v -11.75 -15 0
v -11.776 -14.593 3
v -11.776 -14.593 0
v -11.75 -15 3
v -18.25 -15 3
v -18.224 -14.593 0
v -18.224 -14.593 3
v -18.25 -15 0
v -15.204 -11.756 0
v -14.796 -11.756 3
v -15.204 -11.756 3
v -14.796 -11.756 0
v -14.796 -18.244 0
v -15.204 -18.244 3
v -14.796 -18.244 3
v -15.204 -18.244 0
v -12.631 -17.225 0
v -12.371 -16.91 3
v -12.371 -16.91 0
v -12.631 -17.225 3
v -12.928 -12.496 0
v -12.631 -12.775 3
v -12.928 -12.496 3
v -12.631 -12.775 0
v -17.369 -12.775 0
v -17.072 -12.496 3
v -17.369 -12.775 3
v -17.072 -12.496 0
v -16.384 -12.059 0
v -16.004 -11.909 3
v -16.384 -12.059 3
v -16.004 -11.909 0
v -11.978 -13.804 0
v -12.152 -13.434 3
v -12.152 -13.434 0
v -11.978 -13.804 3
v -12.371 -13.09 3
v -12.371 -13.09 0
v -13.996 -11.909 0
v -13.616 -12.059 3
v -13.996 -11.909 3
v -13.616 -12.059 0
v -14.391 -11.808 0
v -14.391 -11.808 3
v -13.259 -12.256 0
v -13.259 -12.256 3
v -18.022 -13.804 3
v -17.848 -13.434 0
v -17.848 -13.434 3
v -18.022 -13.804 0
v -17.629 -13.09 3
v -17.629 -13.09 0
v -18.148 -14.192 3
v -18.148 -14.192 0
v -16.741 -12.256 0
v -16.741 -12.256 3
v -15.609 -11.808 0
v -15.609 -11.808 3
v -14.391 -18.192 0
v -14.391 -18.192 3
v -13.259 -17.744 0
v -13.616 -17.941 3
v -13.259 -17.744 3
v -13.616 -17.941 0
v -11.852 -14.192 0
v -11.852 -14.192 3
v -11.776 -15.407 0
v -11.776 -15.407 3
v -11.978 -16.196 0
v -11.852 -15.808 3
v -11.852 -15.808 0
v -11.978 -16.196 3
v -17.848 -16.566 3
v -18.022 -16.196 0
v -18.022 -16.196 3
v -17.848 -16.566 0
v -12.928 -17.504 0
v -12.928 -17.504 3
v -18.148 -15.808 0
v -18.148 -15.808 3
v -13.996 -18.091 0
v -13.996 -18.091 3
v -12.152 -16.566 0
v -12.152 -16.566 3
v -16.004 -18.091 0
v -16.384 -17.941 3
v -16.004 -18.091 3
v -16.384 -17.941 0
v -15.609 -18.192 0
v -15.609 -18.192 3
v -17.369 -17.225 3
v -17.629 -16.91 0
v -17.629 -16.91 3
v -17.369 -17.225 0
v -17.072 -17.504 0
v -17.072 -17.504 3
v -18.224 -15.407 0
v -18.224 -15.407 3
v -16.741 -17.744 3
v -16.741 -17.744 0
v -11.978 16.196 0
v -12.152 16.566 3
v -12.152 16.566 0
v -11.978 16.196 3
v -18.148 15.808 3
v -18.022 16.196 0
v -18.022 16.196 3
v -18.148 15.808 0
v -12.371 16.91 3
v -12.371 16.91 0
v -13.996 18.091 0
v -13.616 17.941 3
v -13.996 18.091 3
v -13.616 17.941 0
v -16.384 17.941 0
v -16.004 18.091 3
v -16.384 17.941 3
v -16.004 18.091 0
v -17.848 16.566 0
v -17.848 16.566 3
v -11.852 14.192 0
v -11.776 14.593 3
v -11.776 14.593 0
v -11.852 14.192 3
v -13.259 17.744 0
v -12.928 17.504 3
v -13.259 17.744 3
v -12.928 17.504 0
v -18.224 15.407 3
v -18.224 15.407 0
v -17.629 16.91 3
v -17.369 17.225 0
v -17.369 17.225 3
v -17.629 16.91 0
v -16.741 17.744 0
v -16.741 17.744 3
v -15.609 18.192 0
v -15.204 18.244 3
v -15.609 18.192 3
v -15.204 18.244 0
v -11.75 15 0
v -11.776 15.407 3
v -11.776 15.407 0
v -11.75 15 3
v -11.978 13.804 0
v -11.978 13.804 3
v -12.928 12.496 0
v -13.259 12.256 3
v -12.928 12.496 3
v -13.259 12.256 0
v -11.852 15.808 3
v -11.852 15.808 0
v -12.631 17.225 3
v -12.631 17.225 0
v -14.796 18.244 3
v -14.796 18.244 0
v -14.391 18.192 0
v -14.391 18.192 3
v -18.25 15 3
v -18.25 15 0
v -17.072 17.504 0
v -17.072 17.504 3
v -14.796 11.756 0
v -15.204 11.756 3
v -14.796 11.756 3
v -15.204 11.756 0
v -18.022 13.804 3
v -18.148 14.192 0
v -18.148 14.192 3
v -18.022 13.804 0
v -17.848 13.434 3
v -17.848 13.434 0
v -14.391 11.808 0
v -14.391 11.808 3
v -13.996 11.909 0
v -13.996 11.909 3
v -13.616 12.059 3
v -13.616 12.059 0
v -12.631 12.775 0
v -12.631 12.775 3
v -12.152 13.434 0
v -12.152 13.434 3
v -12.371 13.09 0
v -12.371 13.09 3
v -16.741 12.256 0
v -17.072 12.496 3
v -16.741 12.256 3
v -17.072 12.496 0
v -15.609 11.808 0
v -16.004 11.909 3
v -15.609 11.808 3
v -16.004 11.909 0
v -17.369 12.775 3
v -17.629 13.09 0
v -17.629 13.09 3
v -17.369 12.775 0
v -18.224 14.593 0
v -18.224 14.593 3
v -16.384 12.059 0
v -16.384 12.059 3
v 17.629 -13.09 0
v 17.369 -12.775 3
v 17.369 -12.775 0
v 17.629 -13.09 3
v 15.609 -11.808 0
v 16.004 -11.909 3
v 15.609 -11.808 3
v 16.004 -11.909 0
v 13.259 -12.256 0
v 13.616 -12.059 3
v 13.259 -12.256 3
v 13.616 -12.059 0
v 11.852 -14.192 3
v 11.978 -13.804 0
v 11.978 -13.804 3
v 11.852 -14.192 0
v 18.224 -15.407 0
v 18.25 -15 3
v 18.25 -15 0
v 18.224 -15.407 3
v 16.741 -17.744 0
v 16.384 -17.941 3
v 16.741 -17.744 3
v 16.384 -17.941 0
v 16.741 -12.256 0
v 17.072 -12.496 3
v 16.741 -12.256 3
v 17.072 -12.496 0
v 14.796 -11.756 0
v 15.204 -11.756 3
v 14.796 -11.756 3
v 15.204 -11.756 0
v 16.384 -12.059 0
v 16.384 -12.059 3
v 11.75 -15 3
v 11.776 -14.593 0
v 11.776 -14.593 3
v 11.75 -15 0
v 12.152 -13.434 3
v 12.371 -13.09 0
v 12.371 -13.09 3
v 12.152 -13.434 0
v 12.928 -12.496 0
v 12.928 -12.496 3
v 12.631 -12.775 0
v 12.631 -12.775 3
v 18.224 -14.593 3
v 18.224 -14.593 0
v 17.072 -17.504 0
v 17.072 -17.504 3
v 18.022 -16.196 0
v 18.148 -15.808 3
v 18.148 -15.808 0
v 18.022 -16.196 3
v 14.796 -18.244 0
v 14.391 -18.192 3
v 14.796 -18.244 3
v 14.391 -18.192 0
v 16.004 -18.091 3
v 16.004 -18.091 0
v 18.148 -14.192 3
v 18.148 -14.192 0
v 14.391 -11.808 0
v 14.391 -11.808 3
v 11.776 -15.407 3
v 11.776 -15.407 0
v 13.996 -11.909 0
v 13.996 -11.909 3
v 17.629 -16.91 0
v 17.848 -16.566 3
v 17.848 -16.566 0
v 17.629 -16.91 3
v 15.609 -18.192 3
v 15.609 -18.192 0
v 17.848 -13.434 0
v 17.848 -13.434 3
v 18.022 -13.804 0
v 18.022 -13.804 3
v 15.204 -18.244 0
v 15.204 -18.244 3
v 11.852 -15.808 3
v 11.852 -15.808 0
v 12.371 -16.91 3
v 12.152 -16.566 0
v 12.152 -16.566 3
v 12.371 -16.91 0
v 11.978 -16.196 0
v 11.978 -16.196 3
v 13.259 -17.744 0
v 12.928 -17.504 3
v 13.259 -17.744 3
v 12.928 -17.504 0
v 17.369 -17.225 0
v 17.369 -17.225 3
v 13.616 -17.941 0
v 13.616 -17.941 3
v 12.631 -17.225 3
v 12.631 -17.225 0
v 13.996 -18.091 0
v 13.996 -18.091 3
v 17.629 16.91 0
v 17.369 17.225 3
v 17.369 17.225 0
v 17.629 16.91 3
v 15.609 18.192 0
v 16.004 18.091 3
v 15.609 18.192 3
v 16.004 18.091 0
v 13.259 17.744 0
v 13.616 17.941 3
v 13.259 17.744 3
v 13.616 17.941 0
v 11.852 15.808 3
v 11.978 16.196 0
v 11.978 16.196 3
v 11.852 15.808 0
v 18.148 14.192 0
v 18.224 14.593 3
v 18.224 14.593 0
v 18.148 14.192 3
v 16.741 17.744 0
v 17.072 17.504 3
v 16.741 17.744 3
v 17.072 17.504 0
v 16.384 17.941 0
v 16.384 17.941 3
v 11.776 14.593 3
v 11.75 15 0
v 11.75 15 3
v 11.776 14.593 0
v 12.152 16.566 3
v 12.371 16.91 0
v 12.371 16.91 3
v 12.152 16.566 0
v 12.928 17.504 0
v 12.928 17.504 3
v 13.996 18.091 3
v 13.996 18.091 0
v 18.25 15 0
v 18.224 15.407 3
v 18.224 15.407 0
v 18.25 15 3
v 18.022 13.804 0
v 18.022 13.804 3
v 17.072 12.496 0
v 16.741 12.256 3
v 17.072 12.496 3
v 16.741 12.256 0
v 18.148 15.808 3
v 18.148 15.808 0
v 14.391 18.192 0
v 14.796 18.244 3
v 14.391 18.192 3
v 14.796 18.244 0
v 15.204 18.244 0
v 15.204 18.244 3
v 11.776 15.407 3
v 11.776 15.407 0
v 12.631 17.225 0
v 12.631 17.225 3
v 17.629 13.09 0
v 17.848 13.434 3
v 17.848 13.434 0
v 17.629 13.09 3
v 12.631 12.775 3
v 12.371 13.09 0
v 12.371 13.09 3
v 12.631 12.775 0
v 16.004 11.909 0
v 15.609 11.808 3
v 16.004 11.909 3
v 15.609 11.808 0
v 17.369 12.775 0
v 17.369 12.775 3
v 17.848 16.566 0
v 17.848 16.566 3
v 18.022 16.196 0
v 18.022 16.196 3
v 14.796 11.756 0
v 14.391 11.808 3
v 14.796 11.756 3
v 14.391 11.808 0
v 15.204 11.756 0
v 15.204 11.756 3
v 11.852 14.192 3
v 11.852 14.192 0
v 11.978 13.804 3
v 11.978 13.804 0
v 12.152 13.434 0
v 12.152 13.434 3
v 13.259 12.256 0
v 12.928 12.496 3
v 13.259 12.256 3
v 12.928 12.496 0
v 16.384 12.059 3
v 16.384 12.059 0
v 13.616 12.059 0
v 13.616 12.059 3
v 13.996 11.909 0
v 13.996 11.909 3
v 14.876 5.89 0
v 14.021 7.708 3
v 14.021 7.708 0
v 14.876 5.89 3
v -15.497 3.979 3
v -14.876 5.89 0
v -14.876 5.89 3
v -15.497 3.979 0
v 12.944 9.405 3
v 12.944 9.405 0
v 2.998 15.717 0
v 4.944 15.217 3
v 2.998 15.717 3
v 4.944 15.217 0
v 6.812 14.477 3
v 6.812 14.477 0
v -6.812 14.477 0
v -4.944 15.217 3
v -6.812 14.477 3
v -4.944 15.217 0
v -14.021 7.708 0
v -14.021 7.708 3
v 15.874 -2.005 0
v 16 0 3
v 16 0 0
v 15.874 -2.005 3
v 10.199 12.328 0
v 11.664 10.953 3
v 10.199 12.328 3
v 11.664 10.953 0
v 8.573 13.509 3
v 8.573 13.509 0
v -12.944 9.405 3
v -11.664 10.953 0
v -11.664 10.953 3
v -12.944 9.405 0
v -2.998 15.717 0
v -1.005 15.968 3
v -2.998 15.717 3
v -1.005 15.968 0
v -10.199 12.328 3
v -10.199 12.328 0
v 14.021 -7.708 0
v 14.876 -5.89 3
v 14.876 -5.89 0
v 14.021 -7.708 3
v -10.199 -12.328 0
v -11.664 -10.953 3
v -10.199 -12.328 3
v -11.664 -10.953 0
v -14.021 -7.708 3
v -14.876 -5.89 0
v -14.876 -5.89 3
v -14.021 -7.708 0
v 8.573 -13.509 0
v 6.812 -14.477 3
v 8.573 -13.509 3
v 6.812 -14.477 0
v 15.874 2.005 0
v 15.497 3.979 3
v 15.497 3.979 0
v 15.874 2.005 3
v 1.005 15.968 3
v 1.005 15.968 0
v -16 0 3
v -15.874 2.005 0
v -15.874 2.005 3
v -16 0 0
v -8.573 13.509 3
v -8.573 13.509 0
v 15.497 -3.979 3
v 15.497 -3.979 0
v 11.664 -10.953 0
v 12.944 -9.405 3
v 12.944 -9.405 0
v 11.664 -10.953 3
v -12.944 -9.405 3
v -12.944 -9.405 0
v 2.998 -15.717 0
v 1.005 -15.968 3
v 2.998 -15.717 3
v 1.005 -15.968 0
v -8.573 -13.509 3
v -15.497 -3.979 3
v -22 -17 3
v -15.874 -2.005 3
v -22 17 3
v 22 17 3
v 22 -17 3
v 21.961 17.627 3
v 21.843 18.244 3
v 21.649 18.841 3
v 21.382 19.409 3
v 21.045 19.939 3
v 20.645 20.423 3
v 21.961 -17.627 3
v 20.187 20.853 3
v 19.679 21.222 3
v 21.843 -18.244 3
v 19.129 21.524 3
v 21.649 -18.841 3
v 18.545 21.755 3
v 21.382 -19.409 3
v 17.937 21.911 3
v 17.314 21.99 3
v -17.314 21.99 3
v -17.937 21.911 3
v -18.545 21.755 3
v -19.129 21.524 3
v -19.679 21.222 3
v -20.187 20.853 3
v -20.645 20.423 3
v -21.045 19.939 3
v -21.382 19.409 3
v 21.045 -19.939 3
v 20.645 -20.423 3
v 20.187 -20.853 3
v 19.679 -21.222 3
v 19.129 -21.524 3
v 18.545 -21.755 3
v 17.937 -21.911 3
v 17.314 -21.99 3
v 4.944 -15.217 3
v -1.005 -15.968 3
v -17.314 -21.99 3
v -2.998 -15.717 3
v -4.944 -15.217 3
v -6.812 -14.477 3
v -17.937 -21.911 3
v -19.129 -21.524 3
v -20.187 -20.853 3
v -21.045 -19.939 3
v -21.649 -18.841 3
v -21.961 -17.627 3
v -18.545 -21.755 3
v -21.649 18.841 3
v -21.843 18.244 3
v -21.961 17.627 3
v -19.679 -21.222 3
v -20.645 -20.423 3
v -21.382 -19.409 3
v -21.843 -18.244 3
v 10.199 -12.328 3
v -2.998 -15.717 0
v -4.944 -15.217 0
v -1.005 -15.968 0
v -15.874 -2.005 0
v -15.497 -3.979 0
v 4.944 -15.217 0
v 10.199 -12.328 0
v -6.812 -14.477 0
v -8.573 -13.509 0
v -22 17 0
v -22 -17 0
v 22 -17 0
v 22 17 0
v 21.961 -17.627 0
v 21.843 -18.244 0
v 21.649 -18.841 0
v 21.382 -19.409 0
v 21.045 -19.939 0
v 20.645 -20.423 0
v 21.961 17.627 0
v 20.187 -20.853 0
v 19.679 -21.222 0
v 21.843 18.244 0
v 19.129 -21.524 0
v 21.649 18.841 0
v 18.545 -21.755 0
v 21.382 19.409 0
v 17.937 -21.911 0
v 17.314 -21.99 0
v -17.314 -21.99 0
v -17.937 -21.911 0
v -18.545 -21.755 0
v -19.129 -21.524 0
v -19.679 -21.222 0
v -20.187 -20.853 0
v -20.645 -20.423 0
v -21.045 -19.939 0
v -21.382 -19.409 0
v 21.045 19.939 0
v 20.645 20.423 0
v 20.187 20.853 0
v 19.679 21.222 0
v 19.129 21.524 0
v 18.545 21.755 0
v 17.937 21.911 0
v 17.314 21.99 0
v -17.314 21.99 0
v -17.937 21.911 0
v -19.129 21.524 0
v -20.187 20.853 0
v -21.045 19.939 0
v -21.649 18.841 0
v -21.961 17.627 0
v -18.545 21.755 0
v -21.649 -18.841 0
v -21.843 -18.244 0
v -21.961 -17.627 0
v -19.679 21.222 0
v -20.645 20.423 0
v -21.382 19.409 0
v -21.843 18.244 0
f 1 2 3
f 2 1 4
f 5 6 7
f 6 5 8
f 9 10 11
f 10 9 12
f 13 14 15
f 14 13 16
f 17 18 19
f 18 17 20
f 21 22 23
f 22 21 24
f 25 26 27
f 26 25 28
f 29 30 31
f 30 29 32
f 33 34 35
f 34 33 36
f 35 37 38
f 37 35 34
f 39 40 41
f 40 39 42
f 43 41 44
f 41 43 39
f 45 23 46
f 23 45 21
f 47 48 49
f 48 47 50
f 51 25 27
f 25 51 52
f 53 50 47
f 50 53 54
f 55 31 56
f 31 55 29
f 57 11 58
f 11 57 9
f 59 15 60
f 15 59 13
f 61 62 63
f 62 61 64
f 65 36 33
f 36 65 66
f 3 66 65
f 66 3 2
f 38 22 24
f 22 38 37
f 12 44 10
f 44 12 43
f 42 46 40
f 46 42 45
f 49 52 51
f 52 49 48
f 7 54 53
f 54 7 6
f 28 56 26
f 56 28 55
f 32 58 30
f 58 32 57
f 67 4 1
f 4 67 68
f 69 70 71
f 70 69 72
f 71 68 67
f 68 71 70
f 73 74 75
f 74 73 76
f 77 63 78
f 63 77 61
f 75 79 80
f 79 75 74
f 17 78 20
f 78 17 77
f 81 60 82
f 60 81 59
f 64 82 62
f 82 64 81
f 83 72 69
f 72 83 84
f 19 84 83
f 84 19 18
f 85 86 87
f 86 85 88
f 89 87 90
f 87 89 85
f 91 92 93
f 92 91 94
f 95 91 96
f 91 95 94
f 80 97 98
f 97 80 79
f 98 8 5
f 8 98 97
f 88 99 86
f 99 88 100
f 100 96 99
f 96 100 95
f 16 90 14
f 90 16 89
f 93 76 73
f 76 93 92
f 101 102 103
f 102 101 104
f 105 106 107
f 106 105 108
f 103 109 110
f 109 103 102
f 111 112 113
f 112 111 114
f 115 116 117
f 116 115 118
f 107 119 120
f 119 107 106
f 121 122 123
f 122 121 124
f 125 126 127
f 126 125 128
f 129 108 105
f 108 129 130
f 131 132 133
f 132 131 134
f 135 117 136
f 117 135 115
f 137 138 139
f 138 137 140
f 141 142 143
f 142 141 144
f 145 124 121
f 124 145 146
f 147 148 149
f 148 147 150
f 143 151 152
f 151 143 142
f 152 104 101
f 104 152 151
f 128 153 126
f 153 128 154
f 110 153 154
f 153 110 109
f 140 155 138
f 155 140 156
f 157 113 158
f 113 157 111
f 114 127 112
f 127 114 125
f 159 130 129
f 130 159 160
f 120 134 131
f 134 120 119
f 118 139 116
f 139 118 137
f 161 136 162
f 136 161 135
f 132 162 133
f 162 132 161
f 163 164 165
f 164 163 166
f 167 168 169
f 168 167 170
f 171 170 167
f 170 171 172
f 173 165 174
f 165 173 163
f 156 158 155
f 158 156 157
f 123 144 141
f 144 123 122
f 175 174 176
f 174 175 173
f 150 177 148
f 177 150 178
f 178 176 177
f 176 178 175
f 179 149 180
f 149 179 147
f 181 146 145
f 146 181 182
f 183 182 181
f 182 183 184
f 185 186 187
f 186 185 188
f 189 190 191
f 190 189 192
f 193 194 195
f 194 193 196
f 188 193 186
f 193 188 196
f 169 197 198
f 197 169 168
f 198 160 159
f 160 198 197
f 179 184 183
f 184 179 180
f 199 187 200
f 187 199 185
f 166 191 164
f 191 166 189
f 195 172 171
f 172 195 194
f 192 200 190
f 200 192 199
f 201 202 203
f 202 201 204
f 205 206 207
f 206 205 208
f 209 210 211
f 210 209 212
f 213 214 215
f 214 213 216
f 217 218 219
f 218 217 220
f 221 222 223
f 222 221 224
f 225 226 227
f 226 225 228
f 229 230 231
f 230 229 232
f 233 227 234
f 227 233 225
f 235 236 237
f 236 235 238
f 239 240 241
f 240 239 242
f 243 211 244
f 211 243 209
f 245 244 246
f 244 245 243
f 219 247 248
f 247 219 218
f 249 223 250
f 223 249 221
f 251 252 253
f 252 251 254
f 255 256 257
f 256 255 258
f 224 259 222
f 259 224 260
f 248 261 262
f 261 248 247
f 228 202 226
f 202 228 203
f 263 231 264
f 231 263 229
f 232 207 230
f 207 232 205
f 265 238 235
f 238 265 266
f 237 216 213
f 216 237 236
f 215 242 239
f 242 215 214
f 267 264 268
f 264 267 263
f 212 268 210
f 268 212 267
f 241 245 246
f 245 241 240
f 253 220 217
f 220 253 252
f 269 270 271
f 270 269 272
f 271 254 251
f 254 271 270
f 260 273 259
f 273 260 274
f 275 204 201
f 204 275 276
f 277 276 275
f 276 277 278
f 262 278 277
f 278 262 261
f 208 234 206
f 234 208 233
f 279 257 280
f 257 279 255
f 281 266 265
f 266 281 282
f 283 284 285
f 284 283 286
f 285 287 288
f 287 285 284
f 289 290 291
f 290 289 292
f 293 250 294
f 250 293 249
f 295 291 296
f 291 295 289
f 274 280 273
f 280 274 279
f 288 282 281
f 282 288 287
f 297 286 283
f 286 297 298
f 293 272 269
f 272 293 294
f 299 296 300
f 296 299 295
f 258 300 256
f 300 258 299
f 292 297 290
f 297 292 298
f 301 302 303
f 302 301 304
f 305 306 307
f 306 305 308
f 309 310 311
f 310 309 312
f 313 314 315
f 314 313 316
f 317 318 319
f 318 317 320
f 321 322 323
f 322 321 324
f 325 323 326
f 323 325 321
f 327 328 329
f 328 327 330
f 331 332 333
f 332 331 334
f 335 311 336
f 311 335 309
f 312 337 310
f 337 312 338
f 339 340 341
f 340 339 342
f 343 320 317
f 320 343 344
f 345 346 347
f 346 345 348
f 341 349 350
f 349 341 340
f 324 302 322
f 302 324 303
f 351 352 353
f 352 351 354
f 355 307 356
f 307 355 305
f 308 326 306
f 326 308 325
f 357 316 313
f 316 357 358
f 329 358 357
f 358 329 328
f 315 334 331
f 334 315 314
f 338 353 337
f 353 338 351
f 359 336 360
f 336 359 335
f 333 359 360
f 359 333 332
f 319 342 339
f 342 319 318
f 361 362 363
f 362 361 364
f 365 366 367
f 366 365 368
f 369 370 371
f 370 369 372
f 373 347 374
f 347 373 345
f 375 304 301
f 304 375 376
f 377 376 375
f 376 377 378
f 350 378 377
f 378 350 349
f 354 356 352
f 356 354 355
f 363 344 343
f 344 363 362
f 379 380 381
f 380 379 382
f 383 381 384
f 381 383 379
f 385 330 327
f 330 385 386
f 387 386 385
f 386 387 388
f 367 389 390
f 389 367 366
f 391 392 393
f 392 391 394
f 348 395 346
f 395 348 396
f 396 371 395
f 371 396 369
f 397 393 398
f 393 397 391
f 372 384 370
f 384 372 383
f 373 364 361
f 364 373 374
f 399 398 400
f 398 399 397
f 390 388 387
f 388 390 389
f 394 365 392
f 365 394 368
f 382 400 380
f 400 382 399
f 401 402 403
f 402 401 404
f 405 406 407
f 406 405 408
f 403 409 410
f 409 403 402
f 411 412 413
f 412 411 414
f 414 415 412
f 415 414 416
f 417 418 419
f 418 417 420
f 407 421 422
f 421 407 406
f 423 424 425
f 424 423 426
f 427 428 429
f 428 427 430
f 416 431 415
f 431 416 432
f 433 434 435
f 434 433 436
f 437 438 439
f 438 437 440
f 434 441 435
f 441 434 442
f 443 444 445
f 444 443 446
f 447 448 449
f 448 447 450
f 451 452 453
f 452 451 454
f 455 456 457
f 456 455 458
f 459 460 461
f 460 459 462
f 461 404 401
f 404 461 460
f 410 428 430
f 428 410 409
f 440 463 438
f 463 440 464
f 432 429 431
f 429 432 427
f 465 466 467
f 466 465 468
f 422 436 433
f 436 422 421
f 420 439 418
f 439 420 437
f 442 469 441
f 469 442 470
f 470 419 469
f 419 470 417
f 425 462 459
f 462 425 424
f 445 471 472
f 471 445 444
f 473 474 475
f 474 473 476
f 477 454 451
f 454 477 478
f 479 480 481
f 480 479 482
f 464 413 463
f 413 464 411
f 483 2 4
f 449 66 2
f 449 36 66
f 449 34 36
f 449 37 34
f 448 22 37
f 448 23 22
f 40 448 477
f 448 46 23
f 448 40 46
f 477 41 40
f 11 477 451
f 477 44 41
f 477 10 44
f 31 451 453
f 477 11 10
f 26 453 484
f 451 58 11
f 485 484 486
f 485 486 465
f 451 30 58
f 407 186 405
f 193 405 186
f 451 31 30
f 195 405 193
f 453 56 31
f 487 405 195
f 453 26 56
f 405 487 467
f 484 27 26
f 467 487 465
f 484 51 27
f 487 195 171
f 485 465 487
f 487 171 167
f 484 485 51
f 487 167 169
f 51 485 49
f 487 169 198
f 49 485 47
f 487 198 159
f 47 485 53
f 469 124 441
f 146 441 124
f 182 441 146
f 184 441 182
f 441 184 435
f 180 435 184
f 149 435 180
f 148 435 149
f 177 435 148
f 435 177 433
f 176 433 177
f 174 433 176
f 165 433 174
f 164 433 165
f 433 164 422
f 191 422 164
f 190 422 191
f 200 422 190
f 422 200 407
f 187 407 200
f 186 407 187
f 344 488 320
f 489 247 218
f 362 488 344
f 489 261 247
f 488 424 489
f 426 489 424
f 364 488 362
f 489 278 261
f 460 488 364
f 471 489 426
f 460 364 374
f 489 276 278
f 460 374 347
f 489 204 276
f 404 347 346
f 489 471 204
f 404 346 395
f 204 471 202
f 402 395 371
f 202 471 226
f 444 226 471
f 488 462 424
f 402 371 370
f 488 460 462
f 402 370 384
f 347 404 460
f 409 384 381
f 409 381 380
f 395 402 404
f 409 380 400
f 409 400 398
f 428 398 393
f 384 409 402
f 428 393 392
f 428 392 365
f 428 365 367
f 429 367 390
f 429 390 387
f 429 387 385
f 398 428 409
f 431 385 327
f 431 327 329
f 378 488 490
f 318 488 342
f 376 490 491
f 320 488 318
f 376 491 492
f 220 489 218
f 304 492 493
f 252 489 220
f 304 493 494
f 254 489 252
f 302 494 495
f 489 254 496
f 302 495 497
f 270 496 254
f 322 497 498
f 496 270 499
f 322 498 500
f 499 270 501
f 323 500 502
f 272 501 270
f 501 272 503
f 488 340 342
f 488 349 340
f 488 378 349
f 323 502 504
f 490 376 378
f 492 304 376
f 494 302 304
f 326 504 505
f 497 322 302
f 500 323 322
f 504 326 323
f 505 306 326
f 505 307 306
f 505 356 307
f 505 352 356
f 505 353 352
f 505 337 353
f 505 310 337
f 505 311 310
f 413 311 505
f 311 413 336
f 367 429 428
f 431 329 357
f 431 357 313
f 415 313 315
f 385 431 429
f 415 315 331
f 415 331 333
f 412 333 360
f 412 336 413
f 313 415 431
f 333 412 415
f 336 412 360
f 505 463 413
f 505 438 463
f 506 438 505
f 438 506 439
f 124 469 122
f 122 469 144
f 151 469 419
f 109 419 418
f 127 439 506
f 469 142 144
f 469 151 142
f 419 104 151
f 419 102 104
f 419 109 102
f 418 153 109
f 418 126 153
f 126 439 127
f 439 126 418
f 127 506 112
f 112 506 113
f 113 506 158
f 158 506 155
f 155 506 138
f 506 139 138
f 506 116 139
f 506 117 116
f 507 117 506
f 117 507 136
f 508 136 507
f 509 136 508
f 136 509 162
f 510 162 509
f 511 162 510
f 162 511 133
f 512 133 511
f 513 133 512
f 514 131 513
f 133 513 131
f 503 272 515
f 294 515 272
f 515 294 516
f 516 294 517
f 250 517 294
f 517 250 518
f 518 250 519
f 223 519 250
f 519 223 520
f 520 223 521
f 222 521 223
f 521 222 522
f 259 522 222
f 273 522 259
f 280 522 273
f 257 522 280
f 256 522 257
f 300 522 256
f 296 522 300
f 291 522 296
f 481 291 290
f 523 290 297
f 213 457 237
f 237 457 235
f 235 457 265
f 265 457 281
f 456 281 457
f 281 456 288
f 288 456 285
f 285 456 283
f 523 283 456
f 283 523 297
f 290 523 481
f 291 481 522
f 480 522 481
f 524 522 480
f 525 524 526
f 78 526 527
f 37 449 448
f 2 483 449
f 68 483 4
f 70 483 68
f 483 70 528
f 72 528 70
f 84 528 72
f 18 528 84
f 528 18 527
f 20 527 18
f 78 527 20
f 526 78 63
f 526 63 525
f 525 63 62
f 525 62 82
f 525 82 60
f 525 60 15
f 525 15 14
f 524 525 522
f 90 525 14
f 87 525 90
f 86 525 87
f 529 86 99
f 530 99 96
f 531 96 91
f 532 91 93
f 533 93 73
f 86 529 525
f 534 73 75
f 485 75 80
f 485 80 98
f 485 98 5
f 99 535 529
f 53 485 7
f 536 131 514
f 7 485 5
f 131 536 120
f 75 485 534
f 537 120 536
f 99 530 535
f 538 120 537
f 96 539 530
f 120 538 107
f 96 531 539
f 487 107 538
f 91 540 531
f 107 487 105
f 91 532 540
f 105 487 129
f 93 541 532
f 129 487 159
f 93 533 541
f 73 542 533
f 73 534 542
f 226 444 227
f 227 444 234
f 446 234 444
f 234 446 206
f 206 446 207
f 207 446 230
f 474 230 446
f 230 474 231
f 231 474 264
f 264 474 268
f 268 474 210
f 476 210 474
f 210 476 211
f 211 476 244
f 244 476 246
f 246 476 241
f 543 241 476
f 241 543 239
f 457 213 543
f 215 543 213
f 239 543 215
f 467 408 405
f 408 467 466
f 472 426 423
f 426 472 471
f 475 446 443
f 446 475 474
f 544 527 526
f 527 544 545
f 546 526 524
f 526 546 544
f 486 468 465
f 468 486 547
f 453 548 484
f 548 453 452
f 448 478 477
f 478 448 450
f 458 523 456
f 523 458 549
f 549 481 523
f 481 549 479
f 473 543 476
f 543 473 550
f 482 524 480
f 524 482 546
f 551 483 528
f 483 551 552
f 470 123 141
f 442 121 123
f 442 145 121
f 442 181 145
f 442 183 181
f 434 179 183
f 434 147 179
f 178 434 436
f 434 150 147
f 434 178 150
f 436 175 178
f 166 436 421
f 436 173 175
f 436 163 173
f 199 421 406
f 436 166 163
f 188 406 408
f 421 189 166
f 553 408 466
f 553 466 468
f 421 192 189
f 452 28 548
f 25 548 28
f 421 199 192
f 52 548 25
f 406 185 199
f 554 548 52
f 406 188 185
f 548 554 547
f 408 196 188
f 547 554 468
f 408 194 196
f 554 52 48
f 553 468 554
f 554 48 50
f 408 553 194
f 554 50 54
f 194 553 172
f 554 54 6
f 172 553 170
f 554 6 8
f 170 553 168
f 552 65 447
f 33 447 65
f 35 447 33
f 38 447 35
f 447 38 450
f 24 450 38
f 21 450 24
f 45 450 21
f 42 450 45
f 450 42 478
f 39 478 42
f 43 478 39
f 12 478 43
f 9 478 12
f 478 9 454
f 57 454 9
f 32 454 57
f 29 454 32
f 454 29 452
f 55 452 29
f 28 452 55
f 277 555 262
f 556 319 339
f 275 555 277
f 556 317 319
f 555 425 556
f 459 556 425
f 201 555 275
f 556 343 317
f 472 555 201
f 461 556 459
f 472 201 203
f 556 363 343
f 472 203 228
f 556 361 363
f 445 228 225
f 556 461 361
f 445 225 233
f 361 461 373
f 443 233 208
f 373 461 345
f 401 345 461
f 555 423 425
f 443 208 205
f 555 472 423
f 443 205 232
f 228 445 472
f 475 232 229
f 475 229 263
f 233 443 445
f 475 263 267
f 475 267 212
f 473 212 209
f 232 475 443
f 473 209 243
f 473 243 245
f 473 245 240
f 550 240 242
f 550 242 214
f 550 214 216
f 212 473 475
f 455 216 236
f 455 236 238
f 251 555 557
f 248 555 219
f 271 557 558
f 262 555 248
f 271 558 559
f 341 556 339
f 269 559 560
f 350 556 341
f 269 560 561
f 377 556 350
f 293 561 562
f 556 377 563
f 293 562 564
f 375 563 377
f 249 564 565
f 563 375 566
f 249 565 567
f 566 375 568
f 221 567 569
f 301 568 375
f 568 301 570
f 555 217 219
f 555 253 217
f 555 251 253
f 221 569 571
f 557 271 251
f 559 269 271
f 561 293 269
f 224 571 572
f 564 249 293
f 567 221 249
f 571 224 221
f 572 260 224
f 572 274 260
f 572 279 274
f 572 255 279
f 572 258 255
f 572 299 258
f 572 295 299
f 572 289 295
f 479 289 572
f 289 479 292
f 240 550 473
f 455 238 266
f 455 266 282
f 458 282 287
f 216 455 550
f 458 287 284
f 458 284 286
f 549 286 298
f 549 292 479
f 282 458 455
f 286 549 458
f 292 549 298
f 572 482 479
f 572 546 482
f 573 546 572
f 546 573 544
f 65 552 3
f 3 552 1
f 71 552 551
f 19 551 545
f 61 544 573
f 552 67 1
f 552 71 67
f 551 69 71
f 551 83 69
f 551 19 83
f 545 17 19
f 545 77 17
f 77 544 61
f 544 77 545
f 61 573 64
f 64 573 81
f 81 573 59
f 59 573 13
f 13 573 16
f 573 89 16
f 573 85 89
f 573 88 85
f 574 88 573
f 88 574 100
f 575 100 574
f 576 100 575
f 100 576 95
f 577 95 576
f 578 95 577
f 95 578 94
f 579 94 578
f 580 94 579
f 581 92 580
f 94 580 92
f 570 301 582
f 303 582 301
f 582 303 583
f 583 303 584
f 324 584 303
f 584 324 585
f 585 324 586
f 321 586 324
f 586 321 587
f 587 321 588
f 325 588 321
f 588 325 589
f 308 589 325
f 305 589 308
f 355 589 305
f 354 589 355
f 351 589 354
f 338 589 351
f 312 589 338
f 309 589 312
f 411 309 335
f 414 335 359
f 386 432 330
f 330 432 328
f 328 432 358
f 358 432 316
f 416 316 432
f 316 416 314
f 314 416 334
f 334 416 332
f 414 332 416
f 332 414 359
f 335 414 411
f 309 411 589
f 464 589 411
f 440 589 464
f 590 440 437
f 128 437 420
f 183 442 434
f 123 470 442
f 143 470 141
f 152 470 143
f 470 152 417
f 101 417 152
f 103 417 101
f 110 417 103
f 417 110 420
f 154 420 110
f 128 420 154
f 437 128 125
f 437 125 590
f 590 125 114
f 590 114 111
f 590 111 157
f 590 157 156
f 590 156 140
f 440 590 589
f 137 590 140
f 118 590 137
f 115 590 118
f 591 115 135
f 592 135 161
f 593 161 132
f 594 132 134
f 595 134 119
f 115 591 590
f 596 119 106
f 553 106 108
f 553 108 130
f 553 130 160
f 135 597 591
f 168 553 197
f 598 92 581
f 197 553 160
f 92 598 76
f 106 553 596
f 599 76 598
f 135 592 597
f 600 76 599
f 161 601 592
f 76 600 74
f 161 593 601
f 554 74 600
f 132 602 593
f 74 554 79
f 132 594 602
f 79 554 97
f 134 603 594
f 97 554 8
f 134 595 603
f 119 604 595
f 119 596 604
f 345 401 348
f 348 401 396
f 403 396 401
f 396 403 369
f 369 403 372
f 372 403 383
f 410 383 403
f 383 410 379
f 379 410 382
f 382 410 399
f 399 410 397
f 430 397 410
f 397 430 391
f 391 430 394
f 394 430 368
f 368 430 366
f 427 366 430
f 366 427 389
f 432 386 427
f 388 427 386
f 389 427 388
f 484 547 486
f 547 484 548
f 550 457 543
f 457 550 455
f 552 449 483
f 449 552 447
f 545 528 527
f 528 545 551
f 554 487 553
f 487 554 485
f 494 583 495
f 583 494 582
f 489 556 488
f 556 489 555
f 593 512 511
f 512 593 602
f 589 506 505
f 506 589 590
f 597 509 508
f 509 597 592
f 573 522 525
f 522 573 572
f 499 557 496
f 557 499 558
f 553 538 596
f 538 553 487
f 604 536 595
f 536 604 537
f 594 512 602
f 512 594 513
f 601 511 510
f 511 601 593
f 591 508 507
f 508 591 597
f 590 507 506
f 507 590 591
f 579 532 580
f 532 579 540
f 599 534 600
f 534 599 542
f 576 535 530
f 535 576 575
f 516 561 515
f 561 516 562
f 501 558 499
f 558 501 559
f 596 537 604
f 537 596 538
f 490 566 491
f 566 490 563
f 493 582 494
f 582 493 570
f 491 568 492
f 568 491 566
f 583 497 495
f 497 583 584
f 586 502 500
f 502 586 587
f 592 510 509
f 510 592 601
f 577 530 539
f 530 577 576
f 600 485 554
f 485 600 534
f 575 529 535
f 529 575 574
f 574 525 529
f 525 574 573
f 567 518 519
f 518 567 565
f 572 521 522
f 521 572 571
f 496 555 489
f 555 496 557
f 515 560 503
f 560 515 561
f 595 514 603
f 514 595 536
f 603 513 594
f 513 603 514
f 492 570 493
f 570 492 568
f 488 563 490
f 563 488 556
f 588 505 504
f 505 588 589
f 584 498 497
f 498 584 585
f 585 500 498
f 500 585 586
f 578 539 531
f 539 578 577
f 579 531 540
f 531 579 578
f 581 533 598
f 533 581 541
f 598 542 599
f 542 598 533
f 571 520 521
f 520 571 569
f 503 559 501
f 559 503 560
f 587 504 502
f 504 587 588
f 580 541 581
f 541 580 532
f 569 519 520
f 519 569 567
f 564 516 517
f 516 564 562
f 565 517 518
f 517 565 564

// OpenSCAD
$fn = 50;


difference() {
	union() {
		hull() {
			translate(v = [-17.0000000000, 17.0000000000, 0]) {
				cylinder(h = 3, r = 5);
			}
			translate(v = [17.0000000000, 17.0000000000, 0]) {
				cylinder(h = 3, r = 5);
			}
			translate(v = [-17.0000000000, -17.0000000000, 0]) {
				cylinder(h = 3, r = 5);
			}
			translate(v = [17.0000000000, -17.0000000000, 0]) {
				cylinder(h = 3, r = 5);
			}
		}
	}
	union() {
		#translate(v = [-15.0000000000, -15.0000000000, -100.0000000000]) {
			cylinder(h = 200, r = 3.2500000000);
		}
		#translate(v = [-15.0000000000, 15.0000000000, -100.0000000000]) {
			cylinder(h = 200, r = 3.2500000000);
		}
		#translate(v = [15.0000000000, -15.0000000000, -100.0000000000]) {
			cylinder(h = 200, r = 3.2500000000);
		}
		#translate(v = [15.0000000000, 15.0000000000, -100.0000000000]) {
			cylinder(h = 200, r = 3.2500000000);
		}
		#cylinder(h = 3, r = 16.0000000000);
	}
}
